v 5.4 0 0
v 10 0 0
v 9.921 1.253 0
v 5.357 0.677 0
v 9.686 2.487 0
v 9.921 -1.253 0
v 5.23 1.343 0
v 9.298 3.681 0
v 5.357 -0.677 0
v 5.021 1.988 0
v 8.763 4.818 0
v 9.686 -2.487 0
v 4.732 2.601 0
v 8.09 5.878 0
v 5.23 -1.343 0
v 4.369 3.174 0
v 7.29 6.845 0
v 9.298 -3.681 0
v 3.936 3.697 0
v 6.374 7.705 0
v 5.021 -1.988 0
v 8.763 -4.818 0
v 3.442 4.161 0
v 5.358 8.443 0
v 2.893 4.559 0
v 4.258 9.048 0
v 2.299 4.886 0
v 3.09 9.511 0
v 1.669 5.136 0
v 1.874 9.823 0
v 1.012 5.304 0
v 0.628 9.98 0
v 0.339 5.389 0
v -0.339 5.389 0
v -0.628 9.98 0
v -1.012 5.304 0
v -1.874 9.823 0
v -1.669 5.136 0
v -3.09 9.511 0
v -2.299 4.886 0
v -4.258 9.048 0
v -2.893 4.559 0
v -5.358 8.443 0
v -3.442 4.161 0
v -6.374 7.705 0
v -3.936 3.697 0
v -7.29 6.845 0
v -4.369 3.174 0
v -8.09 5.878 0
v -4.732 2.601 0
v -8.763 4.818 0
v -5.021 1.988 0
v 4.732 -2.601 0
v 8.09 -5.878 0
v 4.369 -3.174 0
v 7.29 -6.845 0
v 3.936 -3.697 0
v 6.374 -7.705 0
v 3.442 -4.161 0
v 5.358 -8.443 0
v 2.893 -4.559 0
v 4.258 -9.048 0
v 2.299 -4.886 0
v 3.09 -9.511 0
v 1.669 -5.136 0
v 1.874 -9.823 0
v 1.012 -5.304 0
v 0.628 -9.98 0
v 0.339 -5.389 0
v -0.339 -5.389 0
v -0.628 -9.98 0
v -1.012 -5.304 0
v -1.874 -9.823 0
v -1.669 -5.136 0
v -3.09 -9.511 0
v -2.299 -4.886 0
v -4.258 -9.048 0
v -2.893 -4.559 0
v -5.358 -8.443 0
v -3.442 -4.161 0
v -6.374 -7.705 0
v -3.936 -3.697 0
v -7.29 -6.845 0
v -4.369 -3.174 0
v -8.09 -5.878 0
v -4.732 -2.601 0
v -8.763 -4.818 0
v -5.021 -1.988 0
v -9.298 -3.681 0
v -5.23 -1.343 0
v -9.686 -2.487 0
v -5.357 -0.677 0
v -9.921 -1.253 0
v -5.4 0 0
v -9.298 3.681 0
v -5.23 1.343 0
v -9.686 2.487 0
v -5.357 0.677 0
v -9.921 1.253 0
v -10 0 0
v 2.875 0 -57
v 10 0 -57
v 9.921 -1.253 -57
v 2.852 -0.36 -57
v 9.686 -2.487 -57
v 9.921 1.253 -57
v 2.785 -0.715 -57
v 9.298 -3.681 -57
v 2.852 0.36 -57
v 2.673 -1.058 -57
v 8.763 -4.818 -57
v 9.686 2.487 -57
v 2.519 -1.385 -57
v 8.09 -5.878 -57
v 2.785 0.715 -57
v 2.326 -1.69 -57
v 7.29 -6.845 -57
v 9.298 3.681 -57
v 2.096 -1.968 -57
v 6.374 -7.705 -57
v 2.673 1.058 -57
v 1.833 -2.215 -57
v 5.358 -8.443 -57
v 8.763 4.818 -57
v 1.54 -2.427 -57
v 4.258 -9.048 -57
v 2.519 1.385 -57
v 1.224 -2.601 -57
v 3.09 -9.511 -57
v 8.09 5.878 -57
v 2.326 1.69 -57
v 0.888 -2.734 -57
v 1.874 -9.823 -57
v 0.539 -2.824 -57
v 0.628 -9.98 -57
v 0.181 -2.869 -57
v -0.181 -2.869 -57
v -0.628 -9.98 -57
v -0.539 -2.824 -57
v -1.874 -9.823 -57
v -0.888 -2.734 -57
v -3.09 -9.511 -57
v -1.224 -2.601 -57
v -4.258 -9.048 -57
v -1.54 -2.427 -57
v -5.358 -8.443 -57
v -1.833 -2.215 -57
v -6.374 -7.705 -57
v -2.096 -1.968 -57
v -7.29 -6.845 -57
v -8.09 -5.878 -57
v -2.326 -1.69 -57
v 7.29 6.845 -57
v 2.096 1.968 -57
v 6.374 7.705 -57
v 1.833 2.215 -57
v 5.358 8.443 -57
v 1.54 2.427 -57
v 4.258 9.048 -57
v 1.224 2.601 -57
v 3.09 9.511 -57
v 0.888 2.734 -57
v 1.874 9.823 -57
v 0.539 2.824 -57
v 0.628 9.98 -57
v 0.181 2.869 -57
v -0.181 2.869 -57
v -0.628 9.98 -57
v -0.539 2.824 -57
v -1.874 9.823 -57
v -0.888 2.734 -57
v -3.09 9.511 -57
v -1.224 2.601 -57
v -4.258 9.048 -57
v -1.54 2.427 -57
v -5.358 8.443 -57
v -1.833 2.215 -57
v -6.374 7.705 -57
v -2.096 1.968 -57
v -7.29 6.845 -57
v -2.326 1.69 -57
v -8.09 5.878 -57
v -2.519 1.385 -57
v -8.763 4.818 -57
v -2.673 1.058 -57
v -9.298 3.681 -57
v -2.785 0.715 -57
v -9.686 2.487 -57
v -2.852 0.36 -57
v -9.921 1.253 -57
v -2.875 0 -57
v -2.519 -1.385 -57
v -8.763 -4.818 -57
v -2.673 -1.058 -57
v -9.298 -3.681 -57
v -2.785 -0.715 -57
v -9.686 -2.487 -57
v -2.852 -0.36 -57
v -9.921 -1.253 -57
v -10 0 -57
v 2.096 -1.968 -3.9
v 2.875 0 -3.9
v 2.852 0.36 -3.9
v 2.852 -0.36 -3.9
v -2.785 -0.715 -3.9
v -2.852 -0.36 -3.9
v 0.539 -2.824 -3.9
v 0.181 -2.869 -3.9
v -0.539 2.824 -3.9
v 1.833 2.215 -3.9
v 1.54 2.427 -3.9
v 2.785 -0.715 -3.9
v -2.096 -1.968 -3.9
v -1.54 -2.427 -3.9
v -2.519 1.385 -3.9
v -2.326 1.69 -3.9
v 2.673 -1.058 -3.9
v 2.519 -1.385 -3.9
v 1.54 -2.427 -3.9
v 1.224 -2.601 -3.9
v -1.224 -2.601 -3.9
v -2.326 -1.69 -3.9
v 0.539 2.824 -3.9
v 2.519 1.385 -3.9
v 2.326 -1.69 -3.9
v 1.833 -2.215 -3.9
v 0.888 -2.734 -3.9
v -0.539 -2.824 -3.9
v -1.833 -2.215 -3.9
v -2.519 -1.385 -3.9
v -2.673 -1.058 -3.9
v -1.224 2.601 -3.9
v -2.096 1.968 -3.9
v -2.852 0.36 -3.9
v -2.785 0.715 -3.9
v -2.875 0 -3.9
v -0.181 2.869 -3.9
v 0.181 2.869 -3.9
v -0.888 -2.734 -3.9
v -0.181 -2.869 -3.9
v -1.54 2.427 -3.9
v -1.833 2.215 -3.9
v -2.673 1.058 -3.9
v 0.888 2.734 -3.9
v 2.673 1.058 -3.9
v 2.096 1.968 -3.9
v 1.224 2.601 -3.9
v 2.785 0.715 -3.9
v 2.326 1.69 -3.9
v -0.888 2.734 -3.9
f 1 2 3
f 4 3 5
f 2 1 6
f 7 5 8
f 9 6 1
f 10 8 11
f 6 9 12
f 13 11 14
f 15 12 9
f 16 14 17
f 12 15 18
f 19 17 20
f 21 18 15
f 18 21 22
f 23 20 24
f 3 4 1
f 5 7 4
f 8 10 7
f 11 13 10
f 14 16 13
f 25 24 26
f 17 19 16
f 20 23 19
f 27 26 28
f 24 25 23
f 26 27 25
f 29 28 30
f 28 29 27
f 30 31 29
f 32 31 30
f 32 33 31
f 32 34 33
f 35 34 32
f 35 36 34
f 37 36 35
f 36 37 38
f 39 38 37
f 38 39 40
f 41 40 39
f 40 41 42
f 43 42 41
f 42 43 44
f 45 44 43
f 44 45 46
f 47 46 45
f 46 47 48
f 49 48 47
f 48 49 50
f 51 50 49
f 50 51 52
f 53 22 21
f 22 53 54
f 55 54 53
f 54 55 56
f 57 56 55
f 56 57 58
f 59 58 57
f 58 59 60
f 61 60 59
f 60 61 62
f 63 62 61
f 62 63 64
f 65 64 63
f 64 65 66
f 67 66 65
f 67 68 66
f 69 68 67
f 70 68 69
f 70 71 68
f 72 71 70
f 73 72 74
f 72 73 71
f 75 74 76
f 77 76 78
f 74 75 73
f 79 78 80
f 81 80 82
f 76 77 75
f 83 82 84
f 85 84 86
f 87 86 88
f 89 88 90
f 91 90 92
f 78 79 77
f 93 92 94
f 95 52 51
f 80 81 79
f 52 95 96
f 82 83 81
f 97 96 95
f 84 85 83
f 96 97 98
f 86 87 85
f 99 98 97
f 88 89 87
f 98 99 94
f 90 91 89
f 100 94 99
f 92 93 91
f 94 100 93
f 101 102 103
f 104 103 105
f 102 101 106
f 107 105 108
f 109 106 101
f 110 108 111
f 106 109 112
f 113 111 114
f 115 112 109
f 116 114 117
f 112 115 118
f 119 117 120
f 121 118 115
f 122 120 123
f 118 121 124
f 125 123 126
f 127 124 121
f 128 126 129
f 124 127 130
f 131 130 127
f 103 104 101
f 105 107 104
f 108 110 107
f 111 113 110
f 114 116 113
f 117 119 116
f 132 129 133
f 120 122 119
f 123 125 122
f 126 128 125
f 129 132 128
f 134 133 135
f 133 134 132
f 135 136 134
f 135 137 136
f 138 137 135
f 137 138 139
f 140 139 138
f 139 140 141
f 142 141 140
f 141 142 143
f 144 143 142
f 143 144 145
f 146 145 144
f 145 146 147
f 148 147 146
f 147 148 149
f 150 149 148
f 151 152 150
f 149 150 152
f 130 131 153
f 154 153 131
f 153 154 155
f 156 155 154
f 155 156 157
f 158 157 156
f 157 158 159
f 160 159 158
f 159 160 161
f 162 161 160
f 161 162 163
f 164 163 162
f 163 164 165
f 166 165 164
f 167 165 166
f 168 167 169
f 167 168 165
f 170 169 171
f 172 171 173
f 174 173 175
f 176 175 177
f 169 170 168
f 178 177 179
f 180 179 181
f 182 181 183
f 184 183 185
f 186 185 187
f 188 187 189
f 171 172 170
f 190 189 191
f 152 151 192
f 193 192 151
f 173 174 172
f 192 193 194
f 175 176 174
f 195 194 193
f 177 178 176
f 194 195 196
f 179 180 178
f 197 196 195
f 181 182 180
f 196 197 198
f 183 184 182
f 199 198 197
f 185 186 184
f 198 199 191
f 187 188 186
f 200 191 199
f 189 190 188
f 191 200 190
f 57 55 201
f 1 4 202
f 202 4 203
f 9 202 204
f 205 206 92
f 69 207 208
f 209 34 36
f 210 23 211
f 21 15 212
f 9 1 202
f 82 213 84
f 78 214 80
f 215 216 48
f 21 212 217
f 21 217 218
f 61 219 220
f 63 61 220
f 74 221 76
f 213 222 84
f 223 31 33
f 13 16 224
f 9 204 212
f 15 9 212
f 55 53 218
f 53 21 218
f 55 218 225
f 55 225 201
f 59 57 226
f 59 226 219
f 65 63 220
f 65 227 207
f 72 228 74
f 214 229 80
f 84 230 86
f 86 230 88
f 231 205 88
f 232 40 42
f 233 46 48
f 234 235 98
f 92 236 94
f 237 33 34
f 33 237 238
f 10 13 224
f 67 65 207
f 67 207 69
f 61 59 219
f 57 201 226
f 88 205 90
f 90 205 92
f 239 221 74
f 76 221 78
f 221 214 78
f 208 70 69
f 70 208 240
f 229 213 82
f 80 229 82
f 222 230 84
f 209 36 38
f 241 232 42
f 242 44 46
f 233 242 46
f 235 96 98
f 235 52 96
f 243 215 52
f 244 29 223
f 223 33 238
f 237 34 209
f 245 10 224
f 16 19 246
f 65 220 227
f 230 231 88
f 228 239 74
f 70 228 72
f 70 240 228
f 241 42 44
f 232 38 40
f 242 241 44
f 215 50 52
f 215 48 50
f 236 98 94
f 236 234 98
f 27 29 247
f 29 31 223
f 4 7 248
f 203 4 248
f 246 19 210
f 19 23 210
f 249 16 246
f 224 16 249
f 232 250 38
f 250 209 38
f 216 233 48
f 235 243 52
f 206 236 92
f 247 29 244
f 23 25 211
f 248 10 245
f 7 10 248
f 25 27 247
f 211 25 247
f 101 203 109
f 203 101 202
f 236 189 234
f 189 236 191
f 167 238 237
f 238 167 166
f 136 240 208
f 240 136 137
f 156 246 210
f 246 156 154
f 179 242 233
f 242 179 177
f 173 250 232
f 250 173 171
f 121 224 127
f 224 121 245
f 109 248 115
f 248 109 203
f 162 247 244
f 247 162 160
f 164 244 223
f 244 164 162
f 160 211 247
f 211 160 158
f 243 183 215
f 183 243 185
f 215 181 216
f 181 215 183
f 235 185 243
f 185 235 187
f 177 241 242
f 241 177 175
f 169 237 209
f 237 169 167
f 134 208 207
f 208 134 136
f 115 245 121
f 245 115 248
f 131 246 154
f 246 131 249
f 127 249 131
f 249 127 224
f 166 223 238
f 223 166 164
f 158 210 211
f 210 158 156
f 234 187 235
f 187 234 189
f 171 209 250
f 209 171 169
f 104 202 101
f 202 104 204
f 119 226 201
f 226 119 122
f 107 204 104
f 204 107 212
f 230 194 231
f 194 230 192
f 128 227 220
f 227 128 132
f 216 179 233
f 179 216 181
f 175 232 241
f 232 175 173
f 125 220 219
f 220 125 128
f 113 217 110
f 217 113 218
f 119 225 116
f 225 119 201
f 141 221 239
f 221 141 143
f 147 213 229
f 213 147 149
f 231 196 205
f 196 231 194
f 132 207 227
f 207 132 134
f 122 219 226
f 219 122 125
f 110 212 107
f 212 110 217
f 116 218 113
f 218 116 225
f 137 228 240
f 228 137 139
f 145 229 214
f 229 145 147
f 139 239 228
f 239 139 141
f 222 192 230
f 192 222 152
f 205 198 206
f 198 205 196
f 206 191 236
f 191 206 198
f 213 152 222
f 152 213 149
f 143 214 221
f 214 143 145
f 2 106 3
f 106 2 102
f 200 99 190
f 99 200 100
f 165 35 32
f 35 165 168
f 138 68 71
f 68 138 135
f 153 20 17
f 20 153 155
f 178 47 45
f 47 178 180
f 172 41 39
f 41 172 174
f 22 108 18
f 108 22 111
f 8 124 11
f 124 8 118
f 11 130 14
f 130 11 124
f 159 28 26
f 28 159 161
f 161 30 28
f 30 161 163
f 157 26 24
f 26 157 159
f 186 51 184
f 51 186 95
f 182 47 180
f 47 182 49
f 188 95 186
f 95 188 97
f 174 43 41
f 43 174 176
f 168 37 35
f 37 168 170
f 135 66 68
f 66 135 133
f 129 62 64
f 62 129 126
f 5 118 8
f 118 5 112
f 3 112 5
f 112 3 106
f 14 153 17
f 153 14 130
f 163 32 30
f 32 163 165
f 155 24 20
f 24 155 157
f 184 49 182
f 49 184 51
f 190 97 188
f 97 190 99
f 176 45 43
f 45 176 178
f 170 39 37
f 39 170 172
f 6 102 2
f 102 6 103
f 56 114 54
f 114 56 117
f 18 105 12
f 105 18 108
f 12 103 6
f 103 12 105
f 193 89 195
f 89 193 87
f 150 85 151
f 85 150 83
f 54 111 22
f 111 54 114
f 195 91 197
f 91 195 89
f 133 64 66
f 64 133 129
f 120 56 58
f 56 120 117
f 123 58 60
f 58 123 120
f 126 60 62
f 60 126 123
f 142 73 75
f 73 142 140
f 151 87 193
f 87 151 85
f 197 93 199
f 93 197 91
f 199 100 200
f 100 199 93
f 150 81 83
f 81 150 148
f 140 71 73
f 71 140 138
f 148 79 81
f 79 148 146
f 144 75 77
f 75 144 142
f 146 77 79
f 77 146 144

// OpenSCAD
$fn = 50;


difference() {
	union() {
		translate(v = [0, 0, -57.0000000000]) {
			cylinder(h = 57, r = 10.0000000000);
		}
		cylinder(h = 0, r = 13.0000000000);
	}
	union() {
		translate(v = [0, 0, 0]) {
			rotate(a = [0, 0, 0]) {
				difference() {
					union() {
						#translate(v = [0, 0, -57.0000000000]) {
							cylinder(h = 57, r = 2.6000000000);
						}
						#translate(v = [0, 0, -3.9000000000]) {
							cylinder(h = 3.9000000000, r = 10.0000000000, r1 = 2.8750000000, r2 = 5.4000000000);
						}
						#translate(v = [0, 0, -57.0000000000]) {
							cylinder(h = 57, r = 2.8750000000);
						}
						#translate(v = [0, 0, -57.0000000000]) {
							cylinder(h = 57, r = 2.6000000000);
						}
					}
					union();
				}
			}
		}
	}
}
